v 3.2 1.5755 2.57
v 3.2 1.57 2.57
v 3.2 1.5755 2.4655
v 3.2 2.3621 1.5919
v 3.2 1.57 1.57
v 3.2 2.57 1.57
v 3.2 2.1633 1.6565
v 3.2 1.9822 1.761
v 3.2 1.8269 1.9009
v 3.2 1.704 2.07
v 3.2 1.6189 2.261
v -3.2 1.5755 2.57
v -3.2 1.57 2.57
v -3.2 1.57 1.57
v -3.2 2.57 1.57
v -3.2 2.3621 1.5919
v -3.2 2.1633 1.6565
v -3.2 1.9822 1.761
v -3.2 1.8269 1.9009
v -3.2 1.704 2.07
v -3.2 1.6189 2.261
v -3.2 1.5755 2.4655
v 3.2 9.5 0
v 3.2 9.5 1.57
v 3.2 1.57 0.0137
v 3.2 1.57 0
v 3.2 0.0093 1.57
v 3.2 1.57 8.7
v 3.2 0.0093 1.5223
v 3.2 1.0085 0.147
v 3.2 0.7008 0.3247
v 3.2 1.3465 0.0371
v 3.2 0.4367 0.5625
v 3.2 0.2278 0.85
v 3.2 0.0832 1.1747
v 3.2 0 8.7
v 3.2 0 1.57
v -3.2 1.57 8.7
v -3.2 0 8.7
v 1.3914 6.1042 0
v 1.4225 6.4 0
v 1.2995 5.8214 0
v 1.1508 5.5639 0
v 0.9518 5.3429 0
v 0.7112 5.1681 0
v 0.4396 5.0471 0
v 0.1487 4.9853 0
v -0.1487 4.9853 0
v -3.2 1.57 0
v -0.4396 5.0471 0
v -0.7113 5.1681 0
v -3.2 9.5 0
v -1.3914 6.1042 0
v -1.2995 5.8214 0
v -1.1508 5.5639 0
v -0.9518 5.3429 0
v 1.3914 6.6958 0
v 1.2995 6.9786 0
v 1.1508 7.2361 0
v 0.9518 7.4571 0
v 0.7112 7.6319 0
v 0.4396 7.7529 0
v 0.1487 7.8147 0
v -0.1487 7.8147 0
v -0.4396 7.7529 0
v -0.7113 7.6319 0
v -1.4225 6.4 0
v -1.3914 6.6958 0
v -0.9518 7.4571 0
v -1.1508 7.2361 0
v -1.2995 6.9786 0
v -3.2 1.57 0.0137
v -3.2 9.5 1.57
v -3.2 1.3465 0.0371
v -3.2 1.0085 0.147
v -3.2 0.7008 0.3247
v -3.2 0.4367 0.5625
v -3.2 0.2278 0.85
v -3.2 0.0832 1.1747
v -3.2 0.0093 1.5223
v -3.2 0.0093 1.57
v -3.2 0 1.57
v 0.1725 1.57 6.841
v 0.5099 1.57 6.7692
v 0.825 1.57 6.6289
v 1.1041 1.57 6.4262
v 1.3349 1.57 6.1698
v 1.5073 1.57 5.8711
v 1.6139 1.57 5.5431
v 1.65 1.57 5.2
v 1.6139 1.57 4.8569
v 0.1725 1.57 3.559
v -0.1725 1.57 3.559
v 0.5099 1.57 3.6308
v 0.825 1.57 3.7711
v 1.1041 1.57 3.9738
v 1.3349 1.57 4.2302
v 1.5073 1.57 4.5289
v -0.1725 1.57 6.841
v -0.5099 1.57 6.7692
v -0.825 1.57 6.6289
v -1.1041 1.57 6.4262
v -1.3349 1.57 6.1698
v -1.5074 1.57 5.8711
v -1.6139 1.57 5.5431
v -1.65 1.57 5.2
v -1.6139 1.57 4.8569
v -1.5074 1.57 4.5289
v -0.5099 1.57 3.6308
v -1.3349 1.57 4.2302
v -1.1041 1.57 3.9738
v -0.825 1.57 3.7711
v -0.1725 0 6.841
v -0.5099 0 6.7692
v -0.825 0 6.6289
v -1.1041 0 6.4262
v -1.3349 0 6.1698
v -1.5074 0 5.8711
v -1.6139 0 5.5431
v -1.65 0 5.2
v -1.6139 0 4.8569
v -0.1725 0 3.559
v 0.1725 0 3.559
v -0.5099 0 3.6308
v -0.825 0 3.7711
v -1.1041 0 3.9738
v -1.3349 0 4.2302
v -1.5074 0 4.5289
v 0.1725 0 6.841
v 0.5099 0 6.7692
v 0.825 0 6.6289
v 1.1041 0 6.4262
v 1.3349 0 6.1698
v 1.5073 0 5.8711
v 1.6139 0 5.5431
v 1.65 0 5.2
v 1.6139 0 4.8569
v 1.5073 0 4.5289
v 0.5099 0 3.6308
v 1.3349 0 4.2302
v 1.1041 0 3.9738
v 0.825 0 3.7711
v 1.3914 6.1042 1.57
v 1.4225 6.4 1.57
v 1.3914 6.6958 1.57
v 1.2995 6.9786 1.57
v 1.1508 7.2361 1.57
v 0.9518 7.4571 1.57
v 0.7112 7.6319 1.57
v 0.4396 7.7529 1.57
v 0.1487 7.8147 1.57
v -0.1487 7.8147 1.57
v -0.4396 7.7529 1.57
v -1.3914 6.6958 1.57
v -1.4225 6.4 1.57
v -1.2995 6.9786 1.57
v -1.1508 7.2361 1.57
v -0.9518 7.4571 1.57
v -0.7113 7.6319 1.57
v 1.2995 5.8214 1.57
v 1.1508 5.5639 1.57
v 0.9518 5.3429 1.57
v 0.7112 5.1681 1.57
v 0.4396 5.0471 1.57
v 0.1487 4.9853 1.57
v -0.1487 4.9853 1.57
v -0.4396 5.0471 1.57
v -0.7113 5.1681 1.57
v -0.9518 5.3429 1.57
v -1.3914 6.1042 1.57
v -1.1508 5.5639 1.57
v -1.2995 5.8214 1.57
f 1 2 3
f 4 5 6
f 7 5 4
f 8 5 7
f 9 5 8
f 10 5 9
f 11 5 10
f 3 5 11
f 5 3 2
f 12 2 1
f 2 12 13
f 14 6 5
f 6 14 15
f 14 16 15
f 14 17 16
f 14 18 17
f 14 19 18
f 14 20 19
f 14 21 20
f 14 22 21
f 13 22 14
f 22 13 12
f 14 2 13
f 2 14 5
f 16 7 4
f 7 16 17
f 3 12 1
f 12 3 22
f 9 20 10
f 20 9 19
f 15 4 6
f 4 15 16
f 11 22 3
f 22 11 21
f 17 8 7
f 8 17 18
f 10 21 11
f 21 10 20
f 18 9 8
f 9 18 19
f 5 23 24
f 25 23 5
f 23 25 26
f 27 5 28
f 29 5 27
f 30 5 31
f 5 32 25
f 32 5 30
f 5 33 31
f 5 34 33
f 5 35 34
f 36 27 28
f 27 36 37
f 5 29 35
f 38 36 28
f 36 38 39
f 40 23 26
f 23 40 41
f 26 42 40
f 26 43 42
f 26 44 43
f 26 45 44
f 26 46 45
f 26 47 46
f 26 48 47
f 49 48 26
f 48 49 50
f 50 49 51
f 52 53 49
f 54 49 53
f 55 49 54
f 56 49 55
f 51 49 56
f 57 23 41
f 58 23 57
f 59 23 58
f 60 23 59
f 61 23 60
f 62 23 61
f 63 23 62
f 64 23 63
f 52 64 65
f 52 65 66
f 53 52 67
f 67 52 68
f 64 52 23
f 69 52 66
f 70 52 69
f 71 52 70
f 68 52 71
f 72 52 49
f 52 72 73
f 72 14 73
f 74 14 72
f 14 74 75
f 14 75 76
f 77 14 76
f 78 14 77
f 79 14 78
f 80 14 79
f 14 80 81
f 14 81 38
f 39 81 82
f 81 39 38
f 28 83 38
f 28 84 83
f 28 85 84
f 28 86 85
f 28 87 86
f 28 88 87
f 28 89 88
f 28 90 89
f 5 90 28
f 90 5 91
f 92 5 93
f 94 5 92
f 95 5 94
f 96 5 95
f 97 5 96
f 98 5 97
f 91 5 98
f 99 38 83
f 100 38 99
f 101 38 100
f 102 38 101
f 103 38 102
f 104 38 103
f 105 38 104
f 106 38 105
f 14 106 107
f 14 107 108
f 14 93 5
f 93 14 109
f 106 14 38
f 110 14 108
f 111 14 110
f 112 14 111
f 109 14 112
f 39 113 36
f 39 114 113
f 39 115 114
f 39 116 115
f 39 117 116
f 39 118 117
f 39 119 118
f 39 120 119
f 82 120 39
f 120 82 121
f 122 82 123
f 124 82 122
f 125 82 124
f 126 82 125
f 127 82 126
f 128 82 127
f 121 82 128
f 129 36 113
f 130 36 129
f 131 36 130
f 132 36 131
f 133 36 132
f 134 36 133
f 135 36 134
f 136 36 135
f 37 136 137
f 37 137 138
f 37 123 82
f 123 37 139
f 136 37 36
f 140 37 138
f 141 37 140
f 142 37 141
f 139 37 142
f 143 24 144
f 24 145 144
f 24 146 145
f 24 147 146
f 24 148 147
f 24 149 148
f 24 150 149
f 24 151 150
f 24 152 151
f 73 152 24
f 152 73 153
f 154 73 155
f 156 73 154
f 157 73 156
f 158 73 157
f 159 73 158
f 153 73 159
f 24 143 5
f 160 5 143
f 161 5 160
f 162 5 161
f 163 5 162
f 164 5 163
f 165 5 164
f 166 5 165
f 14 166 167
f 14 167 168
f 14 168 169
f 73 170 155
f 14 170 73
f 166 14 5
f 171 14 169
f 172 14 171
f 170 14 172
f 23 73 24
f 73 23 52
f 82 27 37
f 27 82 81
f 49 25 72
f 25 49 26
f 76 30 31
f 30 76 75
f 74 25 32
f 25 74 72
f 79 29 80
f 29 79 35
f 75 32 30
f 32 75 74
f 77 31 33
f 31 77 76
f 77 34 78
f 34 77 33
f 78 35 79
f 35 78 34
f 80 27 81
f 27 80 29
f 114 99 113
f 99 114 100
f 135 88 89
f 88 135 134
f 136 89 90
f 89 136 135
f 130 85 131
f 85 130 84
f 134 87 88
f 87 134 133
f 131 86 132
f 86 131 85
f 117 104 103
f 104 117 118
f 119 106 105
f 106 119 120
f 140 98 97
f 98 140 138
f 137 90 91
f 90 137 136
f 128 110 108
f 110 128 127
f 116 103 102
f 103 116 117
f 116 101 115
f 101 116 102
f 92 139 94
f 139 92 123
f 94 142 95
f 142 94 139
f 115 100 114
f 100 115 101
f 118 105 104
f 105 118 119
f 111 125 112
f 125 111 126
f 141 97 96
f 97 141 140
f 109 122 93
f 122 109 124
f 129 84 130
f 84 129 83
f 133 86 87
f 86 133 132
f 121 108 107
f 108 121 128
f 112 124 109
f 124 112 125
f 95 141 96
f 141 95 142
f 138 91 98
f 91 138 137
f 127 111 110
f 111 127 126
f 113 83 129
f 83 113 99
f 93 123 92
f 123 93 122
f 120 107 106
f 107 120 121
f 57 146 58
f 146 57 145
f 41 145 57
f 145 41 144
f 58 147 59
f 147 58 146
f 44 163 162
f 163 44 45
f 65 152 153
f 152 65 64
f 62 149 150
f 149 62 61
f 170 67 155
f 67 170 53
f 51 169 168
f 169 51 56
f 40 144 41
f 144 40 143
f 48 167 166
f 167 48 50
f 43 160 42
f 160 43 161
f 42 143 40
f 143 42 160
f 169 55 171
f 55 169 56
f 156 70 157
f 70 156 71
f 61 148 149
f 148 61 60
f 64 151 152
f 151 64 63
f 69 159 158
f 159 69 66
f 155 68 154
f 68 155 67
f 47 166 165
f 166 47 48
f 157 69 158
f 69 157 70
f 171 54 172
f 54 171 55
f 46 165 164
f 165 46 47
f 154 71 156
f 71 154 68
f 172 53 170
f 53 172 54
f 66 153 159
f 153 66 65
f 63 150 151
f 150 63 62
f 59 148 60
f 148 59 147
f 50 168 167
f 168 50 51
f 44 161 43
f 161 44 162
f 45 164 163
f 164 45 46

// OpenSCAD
/*
 * Keystone Electronics 612
 * https://www.digikey.de/de/products/detail/keystone-electronics/612/416364
 *
 * https://www.keyelco.com/userAssets/file/M65p118.pdf
 */
width = 6.4; // mm
thickness = 1.57; // mm
height = 8.7; // mm
length = 9.5; // mm
h1_dia = 3.3; // mm
h1_dist = 5.2; // mm
h2_dia = 2.845; // mm, 4-40 thread nominal diameter
h2_dist = 6.4; // mm

bend_ri = 1.0; // mm
bend_ro = 1.7; // mm

$fn = 30;

translate([-width/2,0,0]) difference()
{
    difference()
    {
        union() {
            cube([width,thickness,height], center=false);
            cube([width,length,thickness], center=false);
            translate([0,thickness,thickness]) difference()
            {
                cube([width,bend_ri,bend_ri],center=false);
                translate([0,bend_ri,bend_ri]) rotate(90, [0,1,0]) cylinder(width, r=bend_ri);
            }
        }
        difference()
        {
            cube([width,thickness,thickness],center=false);
            translate([0,bend_ro,bend_ro]) rotate(90, [0,1,0]) cylinder(width, r=bend_ro);
        }
    }
    # translate([width/2,0.5*thickness,h1_dist ]) rotate(90, [1,0,0]) cylinder(2 * thickness, d=h1_dia,center=true);
    # translate([width/2,h2_dist,0.5*thickness]) cylinder(2 * thickness, d=h2_dia,center=true);
}
